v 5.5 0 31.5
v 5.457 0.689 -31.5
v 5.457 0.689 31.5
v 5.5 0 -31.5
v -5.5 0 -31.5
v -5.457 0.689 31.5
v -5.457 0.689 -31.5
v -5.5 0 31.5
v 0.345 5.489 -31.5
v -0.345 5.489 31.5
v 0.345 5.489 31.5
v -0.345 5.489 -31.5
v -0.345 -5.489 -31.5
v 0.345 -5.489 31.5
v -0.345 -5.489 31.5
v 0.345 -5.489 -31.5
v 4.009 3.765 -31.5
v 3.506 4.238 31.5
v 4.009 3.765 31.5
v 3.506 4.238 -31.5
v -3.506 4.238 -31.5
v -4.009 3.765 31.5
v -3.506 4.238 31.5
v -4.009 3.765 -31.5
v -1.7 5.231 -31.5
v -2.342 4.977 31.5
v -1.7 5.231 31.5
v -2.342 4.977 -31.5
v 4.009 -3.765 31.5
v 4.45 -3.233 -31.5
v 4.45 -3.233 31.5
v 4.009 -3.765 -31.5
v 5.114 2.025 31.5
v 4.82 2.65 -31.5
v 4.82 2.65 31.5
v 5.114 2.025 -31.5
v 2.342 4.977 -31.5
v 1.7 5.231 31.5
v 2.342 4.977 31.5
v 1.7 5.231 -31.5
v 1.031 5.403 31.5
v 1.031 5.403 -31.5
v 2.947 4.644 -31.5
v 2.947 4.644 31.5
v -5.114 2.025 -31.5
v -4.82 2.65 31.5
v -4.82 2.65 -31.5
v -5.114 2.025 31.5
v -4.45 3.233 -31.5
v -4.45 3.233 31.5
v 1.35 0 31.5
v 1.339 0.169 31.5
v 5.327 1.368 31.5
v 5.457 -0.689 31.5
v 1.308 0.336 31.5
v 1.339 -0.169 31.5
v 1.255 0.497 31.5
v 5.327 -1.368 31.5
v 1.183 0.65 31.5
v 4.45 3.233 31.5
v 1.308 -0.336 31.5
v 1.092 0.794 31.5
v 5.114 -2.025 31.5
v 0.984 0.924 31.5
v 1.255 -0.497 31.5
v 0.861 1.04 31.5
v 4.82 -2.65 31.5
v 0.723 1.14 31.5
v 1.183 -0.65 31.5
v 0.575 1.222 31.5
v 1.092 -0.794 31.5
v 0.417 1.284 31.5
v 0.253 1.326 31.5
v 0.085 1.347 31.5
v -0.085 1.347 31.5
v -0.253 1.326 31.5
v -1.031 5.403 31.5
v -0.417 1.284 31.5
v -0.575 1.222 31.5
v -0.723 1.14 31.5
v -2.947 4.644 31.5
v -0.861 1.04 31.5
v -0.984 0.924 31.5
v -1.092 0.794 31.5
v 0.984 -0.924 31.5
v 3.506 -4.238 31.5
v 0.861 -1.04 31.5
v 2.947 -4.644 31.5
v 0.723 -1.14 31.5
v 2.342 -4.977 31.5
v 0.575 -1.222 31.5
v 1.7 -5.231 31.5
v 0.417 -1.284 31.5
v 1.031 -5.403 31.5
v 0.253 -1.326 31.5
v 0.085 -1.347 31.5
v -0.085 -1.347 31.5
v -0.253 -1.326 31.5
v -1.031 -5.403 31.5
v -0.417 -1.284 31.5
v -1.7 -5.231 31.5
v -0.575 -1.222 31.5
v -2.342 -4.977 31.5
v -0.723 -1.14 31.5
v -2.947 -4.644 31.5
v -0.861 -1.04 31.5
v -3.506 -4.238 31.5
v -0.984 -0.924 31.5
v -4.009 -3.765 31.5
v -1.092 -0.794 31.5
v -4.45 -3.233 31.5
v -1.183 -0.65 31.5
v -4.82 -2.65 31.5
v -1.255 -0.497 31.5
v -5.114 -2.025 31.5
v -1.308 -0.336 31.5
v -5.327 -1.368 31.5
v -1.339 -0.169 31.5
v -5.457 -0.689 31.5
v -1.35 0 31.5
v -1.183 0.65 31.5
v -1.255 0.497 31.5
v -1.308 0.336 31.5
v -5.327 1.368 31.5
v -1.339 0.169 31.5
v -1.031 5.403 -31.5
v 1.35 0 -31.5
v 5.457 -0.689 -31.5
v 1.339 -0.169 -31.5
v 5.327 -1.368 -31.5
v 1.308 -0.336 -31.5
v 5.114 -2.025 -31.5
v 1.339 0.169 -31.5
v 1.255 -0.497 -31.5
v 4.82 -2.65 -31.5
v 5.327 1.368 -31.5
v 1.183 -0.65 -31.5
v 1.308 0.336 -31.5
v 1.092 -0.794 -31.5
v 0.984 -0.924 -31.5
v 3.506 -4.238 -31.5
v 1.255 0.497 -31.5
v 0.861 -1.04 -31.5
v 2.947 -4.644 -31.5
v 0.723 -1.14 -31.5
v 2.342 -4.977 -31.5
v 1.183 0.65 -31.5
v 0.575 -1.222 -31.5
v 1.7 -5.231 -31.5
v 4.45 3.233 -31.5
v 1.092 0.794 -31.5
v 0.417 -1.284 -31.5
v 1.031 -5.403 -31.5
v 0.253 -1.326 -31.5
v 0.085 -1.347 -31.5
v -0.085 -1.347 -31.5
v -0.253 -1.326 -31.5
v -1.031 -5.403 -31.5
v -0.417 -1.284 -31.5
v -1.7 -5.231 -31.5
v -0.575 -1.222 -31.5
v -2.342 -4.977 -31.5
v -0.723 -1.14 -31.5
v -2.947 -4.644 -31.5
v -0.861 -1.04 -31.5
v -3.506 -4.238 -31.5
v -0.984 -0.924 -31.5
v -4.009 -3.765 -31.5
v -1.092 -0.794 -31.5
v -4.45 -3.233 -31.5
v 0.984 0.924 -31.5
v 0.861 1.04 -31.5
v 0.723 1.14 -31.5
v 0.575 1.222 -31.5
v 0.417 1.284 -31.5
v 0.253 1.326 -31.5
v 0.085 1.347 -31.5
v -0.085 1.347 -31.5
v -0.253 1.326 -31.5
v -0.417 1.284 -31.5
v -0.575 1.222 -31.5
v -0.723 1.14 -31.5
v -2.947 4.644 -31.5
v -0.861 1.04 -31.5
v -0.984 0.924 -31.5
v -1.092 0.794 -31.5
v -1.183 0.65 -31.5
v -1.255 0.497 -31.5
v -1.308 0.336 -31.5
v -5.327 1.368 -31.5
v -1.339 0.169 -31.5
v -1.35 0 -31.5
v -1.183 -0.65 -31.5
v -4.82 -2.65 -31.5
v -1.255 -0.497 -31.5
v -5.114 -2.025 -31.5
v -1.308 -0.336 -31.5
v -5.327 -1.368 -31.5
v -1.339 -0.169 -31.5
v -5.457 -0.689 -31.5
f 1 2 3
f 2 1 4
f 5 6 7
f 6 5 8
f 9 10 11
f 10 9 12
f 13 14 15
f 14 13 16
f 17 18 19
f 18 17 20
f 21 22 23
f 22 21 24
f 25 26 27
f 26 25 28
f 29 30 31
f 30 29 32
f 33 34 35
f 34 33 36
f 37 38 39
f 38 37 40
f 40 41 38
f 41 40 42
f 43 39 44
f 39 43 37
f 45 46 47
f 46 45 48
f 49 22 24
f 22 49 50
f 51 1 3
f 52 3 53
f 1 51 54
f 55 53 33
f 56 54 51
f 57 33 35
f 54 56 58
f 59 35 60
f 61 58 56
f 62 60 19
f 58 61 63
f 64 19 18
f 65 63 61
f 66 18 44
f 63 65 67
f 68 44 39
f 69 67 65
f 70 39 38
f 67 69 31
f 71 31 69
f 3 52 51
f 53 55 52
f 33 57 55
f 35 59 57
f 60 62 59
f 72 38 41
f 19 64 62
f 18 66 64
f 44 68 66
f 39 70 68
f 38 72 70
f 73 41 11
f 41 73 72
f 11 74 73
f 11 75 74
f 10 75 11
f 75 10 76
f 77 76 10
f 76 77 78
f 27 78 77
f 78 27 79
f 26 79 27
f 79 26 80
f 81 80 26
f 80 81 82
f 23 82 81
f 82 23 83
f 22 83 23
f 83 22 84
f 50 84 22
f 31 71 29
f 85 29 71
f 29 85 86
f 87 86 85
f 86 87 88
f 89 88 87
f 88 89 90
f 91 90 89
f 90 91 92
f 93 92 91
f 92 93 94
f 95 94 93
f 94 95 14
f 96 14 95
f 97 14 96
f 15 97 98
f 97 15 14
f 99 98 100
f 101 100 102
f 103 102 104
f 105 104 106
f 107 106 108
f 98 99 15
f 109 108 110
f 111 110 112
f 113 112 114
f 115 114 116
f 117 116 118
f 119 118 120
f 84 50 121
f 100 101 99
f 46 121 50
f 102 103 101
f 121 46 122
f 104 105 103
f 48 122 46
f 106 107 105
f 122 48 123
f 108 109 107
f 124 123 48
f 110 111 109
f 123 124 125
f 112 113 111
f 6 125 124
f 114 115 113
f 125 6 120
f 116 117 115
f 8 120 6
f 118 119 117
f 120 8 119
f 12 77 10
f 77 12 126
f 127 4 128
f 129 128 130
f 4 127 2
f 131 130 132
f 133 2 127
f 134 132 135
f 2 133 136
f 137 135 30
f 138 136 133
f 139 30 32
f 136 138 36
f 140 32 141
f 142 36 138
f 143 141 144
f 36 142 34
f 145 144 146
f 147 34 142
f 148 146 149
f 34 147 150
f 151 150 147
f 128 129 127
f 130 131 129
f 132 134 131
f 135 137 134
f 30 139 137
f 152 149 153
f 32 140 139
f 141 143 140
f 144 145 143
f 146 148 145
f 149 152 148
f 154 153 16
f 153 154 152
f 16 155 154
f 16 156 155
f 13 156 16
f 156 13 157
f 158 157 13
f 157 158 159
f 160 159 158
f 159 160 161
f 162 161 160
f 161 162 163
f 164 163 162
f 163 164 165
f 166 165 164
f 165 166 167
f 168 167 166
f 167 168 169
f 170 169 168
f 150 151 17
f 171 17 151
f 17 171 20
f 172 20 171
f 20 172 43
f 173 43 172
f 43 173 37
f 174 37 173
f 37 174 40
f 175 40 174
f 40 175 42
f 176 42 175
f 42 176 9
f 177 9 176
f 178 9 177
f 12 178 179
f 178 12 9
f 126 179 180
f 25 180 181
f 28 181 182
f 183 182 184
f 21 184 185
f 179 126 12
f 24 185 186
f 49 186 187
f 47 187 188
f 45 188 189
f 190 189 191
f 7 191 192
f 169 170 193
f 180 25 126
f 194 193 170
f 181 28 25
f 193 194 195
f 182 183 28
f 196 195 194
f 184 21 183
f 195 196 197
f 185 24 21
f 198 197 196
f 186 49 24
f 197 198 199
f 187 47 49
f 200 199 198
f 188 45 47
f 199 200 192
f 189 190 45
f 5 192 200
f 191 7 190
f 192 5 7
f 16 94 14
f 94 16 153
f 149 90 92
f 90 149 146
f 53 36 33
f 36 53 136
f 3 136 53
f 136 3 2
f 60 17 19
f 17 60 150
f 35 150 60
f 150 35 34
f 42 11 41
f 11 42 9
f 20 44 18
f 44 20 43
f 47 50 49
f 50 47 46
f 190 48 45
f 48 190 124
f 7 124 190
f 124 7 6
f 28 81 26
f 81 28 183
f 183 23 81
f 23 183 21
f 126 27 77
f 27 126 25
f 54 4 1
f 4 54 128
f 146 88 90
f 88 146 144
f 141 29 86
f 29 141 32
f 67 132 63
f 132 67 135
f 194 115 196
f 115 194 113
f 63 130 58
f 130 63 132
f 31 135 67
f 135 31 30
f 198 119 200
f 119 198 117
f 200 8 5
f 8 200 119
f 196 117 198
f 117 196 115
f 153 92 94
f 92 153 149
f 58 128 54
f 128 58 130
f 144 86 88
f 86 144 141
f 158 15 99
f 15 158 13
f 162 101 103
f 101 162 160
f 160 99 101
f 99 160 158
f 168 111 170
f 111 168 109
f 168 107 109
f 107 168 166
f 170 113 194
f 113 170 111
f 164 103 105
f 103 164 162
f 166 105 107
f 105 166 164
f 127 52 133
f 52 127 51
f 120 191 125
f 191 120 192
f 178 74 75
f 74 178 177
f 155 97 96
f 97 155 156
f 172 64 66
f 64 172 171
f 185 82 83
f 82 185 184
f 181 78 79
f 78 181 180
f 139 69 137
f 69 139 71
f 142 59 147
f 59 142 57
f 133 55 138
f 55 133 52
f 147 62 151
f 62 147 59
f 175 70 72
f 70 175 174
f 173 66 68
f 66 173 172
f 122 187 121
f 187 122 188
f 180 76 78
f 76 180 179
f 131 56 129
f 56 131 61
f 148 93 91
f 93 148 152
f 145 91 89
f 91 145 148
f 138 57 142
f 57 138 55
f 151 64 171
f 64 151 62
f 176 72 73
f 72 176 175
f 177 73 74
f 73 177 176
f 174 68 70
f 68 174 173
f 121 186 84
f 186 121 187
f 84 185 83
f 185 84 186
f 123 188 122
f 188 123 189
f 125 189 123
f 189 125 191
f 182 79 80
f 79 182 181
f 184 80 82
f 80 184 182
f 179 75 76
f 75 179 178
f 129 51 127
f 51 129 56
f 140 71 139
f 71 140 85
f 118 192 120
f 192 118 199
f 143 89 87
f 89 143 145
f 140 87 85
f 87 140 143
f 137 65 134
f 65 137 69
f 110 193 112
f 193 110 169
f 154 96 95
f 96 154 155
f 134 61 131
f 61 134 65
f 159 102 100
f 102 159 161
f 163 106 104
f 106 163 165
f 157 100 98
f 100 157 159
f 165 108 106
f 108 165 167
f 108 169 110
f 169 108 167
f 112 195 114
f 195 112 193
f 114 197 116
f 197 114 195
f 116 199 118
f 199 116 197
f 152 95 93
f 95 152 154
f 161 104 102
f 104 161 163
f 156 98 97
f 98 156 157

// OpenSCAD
$fn = 50;


difference() {
	union() {
		translate(v = [0, 0, -31.5000000000]) {
			cylinder(h = 63, r = 5.5000000000);
		}
	}
	union() {
		translate(v = [0, 0, -100.0000000000]) {
			cylinder(h = 200, r = 1.3500000000);
		}
	}
}
